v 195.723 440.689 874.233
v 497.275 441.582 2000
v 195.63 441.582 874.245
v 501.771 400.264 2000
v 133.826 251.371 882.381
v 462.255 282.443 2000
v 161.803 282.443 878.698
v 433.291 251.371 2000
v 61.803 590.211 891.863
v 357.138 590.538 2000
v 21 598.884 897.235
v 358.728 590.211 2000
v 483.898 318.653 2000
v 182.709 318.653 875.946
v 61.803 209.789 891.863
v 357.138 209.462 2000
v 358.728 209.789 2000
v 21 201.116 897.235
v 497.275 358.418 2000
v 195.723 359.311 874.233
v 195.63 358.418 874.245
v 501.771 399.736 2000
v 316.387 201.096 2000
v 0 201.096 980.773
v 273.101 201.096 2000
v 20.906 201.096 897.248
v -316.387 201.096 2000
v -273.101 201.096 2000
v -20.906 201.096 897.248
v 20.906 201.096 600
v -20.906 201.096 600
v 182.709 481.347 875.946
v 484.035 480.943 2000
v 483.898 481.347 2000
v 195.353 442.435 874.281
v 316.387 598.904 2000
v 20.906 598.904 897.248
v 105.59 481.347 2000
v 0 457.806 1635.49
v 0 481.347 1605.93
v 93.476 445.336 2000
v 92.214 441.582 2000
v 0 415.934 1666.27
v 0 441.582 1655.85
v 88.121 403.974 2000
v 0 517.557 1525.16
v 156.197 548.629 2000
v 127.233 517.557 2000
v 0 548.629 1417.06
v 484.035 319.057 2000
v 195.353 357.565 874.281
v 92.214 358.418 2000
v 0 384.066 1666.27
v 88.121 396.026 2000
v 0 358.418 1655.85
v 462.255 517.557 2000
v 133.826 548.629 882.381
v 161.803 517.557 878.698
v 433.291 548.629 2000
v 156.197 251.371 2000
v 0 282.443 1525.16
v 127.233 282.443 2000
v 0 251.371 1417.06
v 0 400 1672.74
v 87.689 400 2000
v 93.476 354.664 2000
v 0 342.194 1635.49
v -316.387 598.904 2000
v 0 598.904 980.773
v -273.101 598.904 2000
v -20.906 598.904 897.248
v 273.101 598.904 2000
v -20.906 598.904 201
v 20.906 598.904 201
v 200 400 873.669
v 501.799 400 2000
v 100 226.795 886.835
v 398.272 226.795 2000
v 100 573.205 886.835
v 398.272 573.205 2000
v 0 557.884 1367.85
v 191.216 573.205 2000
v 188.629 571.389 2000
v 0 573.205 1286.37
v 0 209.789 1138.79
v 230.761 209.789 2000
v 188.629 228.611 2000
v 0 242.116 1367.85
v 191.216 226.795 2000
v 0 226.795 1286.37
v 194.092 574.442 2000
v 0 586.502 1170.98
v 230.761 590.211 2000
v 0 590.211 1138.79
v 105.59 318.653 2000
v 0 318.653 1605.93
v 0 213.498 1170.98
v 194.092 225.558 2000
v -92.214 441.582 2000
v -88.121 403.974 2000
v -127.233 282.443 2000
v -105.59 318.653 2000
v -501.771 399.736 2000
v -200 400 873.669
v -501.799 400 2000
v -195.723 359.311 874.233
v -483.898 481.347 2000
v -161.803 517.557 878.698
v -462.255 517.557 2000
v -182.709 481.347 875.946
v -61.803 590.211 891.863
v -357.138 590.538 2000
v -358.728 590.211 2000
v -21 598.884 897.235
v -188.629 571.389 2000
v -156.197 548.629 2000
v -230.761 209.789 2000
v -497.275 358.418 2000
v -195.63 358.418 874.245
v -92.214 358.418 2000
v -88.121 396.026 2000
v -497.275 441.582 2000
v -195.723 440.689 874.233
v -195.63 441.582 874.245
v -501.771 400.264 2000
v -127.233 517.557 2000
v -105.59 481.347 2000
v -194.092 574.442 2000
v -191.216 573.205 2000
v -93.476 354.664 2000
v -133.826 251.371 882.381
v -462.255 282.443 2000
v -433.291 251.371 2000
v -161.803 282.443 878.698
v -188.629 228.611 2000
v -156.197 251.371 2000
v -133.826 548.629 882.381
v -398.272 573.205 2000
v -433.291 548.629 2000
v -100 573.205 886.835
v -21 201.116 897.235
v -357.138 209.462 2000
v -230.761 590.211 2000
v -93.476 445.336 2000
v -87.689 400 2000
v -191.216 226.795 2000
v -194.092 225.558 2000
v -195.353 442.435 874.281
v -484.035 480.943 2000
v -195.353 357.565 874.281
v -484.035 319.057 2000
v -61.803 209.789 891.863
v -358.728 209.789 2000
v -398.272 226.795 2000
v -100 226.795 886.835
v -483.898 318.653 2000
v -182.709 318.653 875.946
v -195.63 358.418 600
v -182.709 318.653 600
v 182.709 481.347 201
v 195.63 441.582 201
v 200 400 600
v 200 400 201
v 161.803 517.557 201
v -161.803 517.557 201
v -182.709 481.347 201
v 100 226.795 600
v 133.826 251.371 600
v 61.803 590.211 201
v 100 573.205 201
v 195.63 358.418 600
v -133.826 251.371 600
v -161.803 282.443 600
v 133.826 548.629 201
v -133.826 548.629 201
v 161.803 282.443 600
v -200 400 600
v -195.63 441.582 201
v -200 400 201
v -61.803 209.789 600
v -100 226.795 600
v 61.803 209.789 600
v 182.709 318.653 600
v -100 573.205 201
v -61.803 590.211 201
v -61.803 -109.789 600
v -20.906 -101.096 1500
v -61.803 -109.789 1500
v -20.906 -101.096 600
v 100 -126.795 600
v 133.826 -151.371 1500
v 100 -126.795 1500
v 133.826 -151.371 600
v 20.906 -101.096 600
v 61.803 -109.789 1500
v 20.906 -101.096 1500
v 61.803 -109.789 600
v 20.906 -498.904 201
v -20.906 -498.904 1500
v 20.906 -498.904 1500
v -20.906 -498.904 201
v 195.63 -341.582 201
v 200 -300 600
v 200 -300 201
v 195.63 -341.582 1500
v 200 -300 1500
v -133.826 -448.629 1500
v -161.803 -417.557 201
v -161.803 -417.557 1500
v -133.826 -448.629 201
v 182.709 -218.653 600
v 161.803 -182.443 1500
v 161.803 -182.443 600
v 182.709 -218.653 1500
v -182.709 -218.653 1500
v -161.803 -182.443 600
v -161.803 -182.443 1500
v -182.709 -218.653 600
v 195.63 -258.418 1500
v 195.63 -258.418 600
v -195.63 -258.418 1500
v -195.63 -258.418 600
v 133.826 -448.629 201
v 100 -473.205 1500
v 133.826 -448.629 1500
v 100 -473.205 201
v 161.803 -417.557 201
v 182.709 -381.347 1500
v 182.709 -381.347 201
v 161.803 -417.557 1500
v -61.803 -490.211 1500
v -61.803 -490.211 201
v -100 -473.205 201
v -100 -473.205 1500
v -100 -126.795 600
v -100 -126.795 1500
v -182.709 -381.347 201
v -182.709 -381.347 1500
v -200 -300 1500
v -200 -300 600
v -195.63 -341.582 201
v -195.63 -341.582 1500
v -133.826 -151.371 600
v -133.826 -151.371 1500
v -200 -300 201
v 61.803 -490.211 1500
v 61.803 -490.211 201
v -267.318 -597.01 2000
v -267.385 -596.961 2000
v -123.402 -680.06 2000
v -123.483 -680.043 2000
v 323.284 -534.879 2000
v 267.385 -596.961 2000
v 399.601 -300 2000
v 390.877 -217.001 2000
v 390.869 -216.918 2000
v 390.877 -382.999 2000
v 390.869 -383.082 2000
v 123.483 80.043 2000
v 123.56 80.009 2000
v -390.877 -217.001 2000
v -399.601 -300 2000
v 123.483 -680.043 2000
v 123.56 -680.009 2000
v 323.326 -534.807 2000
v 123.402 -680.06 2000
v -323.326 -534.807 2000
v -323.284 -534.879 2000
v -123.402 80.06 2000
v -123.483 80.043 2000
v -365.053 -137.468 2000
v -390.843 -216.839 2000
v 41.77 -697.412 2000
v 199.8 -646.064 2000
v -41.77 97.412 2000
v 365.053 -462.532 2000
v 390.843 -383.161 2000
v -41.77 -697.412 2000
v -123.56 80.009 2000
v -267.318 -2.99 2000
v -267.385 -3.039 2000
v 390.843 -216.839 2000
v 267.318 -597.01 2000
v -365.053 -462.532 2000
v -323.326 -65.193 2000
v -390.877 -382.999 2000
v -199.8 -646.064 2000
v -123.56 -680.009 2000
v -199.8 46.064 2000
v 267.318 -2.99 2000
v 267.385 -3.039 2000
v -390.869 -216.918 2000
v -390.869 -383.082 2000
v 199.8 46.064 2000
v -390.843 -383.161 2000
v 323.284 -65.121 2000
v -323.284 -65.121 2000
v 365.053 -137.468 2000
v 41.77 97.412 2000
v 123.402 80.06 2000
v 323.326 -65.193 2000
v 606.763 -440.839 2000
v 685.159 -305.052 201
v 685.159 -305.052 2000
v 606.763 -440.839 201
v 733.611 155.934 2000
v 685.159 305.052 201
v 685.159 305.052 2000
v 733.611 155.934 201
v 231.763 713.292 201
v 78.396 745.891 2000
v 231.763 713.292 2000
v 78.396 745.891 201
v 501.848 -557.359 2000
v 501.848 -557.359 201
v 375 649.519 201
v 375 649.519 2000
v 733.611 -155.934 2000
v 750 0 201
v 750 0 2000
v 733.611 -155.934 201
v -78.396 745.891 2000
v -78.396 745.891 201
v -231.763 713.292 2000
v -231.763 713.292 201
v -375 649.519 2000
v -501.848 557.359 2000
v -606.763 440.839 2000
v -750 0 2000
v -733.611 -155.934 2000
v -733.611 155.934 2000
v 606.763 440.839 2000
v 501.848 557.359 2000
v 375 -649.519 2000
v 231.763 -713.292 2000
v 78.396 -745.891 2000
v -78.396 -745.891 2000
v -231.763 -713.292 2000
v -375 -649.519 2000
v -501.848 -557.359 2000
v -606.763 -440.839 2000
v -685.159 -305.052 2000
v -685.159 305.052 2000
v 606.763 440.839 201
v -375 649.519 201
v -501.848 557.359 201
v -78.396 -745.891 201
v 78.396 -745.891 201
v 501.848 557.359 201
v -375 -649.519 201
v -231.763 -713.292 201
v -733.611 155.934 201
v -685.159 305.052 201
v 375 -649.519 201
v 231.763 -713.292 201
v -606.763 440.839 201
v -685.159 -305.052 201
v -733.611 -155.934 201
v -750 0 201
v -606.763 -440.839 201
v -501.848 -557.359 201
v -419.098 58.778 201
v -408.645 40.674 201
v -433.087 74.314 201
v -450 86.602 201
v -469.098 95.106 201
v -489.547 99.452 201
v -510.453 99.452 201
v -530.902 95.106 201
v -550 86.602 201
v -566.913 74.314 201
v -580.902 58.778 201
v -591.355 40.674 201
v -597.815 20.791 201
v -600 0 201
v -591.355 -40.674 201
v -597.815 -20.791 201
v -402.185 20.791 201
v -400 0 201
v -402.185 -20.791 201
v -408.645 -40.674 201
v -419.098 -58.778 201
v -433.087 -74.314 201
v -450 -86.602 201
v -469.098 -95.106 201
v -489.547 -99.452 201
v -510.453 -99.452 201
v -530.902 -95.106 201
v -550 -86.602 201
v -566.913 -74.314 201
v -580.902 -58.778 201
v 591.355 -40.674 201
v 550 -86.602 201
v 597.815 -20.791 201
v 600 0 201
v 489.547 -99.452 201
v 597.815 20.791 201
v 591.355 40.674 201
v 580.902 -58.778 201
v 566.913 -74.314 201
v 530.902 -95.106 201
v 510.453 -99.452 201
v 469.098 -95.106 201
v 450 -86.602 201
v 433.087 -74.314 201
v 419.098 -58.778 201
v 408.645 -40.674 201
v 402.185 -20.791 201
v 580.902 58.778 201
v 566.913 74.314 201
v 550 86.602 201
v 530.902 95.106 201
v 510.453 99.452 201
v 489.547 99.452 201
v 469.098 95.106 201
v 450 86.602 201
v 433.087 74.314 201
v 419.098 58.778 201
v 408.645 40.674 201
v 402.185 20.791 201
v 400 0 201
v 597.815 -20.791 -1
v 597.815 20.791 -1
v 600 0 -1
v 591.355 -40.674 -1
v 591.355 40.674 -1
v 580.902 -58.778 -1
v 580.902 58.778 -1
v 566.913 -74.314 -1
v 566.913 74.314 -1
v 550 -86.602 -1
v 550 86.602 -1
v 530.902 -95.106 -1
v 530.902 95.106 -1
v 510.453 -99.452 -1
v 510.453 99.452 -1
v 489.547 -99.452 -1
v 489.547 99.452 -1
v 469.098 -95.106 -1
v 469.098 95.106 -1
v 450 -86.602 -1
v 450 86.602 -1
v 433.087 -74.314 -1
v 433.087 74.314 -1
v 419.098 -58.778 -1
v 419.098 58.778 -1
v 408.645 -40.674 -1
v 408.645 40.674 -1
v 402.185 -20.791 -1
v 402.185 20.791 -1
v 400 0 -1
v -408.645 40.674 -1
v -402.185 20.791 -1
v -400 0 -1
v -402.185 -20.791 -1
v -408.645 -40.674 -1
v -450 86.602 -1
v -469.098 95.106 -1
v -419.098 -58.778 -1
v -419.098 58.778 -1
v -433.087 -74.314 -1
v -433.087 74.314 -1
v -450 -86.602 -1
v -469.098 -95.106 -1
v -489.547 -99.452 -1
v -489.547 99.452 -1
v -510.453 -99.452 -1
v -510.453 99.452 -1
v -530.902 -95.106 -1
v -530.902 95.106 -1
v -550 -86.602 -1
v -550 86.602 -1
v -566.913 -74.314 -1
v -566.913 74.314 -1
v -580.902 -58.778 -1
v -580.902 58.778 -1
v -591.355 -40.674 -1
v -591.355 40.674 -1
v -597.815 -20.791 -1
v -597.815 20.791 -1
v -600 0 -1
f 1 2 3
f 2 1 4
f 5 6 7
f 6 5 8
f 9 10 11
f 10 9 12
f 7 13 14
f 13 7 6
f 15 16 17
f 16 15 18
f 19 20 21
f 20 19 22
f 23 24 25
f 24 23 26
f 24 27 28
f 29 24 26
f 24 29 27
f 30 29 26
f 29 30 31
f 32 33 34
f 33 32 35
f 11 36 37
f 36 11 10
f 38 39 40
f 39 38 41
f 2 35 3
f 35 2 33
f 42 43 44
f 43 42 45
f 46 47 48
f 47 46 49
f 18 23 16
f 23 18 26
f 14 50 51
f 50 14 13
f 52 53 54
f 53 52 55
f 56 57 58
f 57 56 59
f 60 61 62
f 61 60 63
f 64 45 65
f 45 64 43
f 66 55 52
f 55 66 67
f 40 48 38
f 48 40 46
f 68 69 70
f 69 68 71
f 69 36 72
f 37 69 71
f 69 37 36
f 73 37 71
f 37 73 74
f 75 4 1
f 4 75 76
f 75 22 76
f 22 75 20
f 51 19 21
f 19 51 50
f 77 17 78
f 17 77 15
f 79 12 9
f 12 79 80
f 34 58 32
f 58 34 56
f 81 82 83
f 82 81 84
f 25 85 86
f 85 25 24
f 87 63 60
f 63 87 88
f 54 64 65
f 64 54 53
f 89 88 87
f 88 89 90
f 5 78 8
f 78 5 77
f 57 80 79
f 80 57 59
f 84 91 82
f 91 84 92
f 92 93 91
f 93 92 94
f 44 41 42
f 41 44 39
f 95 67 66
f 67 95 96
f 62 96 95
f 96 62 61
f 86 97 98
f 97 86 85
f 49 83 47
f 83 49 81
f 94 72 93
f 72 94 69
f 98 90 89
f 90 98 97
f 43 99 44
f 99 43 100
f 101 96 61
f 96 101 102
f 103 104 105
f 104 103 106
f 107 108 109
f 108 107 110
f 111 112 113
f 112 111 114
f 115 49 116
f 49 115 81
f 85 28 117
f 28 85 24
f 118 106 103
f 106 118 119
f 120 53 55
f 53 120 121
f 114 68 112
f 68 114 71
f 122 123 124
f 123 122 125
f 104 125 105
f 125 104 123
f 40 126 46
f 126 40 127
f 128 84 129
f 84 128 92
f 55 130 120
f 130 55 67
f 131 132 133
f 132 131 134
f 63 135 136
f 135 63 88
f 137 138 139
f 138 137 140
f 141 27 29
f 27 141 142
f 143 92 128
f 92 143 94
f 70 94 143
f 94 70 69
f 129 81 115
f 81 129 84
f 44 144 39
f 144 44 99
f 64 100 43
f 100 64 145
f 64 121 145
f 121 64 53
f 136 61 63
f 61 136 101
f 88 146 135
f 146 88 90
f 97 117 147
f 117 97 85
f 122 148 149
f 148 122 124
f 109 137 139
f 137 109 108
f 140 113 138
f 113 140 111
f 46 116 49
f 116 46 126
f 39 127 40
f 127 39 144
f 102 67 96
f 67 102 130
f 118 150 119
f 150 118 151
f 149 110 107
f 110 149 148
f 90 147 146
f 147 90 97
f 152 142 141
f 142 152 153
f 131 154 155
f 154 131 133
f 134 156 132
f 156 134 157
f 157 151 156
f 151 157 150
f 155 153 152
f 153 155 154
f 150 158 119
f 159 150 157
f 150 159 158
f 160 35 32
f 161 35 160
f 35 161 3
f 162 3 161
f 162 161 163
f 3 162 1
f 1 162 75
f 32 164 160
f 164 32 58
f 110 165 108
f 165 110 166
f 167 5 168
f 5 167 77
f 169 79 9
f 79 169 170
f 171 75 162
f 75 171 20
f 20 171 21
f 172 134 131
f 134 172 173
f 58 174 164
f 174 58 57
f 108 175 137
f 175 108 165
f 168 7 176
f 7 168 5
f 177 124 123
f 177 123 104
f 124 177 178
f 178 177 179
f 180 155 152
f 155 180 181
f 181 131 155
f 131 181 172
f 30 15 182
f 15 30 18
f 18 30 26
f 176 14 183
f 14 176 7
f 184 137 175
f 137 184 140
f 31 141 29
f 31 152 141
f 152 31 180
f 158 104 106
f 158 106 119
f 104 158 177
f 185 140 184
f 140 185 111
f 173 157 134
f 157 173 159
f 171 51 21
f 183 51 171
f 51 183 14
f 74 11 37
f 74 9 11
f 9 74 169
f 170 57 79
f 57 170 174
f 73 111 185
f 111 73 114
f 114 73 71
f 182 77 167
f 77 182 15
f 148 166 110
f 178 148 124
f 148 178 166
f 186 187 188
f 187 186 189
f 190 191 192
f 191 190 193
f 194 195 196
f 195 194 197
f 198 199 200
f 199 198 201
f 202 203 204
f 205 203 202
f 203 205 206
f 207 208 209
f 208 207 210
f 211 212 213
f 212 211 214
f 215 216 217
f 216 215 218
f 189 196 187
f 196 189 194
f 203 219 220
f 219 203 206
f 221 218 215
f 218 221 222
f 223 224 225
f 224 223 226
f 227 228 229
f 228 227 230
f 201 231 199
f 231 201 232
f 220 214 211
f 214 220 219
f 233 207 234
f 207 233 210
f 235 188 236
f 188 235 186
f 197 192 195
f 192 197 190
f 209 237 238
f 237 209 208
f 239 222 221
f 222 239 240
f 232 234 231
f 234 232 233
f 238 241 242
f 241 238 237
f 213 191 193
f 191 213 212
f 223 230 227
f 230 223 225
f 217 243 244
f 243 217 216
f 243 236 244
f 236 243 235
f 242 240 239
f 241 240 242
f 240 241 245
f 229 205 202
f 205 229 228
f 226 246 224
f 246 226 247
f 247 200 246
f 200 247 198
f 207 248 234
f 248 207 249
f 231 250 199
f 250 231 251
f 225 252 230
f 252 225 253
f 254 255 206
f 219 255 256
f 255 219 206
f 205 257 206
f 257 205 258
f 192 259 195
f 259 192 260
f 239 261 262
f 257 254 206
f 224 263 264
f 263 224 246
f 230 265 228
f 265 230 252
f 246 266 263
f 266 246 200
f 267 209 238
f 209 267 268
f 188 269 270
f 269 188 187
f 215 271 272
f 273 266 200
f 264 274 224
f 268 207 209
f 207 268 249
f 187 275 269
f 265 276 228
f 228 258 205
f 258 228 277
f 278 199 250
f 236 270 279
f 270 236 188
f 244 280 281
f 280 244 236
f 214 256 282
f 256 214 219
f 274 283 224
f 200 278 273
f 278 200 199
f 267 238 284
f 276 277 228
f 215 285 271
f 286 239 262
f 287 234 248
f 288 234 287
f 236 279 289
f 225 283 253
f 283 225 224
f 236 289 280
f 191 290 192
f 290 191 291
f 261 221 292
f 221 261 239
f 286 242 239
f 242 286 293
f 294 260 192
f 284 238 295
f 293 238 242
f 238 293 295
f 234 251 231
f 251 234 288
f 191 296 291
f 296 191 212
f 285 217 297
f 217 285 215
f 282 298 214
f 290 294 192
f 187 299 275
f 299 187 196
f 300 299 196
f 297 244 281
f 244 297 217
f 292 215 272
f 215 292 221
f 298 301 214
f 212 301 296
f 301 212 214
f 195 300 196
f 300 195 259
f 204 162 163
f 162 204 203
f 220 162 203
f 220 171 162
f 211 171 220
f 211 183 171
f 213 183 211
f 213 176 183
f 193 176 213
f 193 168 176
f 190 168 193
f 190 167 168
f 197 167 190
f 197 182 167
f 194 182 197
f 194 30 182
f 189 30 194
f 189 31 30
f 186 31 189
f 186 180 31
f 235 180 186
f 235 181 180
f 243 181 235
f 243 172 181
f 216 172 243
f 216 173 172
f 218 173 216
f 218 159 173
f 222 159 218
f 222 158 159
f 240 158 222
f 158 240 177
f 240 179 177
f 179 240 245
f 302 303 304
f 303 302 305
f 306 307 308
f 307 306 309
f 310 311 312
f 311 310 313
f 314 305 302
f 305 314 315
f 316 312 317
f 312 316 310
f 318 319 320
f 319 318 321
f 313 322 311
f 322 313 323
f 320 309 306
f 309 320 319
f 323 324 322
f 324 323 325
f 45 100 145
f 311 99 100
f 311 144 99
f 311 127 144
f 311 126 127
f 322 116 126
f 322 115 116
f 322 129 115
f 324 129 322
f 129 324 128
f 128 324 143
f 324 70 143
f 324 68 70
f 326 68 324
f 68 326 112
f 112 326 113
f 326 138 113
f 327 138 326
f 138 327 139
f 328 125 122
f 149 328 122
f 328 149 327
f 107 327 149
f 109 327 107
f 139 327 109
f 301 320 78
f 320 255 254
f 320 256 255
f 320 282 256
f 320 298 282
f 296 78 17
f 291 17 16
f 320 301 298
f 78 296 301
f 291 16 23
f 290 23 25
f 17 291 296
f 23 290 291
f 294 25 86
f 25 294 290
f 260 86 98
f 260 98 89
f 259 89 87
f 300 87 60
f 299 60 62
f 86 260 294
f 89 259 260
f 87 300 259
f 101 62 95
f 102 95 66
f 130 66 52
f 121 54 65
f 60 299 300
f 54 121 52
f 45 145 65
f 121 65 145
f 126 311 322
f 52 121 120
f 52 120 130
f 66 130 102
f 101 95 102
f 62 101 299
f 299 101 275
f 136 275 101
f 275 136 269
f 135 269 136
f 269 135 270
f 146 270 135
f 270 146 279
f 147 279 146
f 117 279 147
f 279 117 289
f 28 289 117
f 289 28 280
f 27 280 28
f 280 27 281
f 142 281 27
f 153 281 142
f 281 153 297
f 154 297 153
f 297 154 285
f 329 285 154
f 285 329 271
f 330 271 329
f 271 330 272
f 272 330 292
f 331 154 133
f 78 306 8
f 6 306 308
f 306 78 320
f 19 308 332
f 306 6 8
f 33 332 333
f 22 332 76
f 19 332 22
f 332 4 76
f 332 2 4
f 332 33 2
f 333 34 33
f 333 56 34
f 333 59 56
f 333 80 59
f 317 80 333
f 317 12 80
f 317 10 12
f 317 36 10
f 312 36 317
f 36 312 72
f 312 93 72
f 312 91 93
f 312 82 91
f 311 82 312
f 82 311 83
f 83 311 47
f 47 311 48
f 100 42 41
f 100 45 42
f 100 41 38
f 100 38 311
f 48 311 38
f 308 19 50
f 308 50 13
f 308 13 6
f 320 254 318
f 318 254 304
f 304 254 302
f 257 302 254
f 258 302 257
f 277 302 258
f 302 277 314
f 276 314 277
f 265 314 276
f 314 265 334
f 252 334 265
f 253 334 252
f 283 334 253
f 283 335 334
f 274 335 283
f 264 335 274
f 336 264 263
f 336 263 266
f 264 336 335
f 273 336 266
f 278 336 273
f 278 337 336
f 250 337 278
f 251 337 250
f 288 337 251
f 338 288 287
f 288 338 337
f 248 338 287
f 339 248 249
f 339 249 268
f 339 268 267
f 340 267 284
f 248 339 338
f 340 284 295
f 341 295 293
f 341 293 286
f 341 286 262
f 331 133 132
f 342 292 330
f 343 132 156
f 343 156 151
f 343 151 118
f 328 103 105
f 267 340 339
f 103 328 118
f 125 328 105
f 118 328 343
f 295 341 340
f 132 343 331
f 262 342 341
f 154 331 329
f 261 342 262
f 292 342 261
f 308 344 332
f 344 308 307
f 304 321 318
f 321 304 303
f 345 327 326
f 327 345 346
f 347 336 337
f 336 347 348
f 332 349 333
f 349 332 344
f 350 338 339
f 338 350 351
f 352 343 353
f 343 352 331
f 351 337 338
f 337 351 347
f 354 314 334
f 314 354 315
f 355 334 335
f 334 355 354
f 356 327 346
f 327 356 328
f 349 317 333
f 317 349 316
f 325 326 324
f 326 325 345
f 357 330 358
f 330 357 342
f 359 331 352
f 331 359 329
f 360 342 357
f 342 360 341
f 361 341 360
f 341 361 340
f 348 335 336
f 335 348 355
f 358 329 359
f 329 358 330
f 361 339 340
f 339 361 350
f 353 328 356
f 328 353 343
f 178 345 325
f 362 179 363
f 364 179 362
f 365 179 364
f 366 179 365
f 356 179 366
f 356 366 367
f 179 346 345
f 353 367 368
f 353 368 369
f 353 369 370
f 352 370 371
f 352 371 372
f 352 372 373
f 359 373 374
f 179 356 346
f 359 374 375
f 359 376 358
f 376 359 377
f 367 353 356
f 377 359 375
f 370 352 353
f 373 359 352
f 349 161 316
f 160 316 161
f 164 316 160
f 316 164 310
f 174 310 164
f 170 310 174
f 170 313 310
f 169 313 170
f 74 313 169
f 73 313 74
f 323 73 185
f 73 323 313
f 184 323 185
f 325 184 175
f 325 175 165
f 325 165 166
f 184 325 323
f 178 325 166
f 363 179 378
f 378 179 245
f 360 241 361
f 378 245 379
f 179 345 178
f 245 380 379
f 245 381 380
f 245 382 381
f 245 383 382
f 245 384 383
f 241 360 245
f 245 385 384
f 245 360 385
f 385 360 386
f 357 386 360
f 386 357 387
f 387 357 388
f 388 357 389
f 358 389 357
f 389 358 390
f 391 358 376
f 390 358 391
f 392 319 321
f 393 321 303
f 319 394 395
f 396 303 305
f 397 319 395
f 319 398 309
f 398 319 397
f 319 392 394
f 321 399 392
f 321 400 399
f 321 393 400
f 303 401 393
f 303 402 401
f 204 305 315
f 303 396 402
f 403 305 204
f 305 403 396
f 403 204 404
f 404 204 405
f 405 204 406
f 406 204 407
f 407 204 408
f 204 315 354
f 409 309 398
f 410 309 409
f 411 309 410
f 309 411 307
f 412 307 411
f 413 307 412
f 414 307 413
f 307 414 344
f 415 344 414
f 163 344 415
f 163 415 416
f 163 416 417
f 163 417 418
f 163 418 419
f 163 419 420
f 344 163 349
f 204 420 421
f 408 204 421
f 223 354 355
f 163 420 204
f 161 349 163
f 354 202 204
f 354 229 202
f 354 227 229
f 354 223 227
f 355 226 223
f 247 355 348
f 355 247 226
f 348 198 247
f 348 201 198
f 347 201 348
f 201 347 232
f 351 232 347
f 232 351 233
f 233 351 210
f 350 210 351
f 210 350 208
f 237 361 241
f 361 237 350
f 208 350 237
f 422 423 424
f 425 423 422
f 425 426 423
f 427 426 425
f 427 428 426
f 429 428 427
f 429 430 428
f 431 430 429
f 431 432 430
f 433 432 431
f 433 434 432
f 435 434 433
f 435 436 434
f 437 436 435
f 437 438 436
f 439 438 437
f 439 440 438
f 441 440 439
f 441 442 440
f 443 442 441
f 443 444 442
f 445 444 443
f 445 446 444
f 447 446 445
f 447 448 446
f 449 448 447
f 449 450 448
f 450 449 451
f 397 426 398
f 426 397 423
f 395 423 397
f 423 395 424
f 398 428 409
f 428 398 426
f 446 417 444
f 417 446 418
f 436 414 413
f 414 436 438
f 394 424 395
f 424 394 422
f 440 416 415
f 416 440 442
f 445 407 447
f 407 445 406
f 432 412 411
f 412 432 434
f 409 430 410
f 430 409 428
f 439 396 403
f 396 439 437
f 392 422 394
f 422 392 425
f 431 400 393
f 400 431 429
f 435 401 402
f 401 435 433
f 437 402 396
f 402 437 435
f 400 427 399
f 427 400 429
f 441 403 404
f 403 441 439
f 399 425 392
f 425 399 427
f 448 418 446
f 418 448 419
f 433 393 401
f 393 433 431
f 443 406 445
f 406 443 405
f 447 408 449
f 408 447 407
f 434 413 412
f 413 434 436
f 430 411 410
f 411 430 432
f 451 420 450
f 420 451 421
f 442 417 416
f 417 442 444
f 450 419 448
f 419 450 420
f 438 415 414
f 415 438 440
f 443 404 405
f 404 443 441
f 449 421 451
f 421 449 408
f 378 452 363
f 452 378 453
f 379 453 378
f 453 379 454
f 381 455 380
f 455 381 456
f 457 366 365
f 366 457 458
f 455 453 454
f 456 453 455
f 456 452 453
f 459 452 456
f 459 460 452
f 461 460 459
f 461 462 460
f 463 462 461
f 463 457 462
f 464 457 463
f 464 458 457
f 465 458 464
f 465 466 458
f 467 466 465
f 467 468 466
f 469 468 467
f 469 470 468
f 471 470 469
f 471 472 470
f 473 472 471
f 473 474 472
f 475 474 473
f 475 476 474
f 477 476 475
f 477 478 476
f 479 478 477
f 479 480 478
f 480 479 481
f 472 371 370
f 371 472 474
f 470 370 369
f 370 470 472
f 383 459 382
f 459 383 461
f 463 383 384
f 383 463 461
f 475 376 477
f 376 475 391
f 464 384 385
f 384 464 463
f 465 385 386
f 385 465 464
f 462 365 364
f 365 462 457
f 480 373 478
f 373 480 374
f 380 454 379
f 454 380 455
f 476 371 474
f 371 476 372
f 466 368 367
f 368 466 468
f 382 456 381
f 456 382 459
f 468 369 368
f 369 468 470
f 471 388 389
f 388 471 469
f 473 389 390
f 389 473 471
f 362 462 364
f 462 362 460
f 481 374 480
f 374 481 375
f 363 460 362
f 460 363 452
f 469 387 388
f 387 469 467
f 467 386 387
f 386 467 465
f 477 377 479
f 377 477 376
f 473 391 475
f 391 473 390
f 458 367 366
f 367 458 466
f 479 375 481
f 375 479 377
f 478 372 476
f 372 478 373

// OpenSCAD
// 1 unit = 10µm
scale_factor = 0.01;
bulk_height = 2000;
bulk_diameter = 1500;
tube_diameter = 400;
bottom_padding = 200;
side_padding = 400;
funnel_height = 500;
y_trunk_height = 700;
y_branch_height = 1200;
y_branch_angle = 15;
holder_height = 700;
holder_diameter = 900;
holder_pin = 10;
pins_diameter = 200;
pins_height = bottom_padding+holder_pin;


module InnerChannels() {
    
    difference() {
    
        translate([0, -bulk_diameter/5, bottom_padding]) {

            cylinder(bulk_height-bottom_padding, d=tube_diameter);
            sphere(d=tube_diameter);

            translate([0, 0, bulk_height-bottom_padding-funnel_height])
                cylinder(funnel_height+1, d1=tube_diameter, d2=tube_diameter*2);

            rotate([-90, 0, 0])
                cylinder(bulk_diameter-side_padding*2, d=tube_diameter);

            translate([0, bulk_diameter-side_padding*2, 0]) {
                
                sphere(d=tube_diameter);
                cylinder(y_trunk_height, d=tube_diameter);
                
                translate([0, 0, y_trunk_height]) {
                    
                    rotate([0, y_branch_angle, 0])
                        cylinder(y_branch_height, d=tube_diameter);
                    rotate([0, -y_branch_angle, 0])
                        cylinder(y_branch_height, d=tube_diameter);
                    
                    
                }
                
            }
            
            translate([-tube_diameter/2, 0, 0])
                cube([tube_diameter, bulk_diameter-side_padding*2, tube_diameter]);

        }

        translate([-(tube_diameter+2)/2, -bulk_diameter/5-tube_diameter/2, -1])
            cube([tube_diameter+2, bulk_diameter-side_padding, (tube_diameter+2)/2]);
                
    }

}

module FullObject() {
    
    difference() {
    
        cylinder(bulk_height, d=bulk_diameter);
        InnerChannels();
        
    }

    translate([0, 0, -holder_height])
        cylinder(holder_height+holder_pin, d=holder_diameter);

    
}


intersection() {

    FullObject();
    translate([0, 0, bottom_padding+bulk_height/2+1])
        cube(bulk_height, center=true);

}

translate([bulk_diameter/3, 0, -1])
    cylinder(pins_height, d=pins_diameter);

translate([-bulk_diameter/3, 0, -1])
    cylinder(pins_height, d=pins_diameter);
